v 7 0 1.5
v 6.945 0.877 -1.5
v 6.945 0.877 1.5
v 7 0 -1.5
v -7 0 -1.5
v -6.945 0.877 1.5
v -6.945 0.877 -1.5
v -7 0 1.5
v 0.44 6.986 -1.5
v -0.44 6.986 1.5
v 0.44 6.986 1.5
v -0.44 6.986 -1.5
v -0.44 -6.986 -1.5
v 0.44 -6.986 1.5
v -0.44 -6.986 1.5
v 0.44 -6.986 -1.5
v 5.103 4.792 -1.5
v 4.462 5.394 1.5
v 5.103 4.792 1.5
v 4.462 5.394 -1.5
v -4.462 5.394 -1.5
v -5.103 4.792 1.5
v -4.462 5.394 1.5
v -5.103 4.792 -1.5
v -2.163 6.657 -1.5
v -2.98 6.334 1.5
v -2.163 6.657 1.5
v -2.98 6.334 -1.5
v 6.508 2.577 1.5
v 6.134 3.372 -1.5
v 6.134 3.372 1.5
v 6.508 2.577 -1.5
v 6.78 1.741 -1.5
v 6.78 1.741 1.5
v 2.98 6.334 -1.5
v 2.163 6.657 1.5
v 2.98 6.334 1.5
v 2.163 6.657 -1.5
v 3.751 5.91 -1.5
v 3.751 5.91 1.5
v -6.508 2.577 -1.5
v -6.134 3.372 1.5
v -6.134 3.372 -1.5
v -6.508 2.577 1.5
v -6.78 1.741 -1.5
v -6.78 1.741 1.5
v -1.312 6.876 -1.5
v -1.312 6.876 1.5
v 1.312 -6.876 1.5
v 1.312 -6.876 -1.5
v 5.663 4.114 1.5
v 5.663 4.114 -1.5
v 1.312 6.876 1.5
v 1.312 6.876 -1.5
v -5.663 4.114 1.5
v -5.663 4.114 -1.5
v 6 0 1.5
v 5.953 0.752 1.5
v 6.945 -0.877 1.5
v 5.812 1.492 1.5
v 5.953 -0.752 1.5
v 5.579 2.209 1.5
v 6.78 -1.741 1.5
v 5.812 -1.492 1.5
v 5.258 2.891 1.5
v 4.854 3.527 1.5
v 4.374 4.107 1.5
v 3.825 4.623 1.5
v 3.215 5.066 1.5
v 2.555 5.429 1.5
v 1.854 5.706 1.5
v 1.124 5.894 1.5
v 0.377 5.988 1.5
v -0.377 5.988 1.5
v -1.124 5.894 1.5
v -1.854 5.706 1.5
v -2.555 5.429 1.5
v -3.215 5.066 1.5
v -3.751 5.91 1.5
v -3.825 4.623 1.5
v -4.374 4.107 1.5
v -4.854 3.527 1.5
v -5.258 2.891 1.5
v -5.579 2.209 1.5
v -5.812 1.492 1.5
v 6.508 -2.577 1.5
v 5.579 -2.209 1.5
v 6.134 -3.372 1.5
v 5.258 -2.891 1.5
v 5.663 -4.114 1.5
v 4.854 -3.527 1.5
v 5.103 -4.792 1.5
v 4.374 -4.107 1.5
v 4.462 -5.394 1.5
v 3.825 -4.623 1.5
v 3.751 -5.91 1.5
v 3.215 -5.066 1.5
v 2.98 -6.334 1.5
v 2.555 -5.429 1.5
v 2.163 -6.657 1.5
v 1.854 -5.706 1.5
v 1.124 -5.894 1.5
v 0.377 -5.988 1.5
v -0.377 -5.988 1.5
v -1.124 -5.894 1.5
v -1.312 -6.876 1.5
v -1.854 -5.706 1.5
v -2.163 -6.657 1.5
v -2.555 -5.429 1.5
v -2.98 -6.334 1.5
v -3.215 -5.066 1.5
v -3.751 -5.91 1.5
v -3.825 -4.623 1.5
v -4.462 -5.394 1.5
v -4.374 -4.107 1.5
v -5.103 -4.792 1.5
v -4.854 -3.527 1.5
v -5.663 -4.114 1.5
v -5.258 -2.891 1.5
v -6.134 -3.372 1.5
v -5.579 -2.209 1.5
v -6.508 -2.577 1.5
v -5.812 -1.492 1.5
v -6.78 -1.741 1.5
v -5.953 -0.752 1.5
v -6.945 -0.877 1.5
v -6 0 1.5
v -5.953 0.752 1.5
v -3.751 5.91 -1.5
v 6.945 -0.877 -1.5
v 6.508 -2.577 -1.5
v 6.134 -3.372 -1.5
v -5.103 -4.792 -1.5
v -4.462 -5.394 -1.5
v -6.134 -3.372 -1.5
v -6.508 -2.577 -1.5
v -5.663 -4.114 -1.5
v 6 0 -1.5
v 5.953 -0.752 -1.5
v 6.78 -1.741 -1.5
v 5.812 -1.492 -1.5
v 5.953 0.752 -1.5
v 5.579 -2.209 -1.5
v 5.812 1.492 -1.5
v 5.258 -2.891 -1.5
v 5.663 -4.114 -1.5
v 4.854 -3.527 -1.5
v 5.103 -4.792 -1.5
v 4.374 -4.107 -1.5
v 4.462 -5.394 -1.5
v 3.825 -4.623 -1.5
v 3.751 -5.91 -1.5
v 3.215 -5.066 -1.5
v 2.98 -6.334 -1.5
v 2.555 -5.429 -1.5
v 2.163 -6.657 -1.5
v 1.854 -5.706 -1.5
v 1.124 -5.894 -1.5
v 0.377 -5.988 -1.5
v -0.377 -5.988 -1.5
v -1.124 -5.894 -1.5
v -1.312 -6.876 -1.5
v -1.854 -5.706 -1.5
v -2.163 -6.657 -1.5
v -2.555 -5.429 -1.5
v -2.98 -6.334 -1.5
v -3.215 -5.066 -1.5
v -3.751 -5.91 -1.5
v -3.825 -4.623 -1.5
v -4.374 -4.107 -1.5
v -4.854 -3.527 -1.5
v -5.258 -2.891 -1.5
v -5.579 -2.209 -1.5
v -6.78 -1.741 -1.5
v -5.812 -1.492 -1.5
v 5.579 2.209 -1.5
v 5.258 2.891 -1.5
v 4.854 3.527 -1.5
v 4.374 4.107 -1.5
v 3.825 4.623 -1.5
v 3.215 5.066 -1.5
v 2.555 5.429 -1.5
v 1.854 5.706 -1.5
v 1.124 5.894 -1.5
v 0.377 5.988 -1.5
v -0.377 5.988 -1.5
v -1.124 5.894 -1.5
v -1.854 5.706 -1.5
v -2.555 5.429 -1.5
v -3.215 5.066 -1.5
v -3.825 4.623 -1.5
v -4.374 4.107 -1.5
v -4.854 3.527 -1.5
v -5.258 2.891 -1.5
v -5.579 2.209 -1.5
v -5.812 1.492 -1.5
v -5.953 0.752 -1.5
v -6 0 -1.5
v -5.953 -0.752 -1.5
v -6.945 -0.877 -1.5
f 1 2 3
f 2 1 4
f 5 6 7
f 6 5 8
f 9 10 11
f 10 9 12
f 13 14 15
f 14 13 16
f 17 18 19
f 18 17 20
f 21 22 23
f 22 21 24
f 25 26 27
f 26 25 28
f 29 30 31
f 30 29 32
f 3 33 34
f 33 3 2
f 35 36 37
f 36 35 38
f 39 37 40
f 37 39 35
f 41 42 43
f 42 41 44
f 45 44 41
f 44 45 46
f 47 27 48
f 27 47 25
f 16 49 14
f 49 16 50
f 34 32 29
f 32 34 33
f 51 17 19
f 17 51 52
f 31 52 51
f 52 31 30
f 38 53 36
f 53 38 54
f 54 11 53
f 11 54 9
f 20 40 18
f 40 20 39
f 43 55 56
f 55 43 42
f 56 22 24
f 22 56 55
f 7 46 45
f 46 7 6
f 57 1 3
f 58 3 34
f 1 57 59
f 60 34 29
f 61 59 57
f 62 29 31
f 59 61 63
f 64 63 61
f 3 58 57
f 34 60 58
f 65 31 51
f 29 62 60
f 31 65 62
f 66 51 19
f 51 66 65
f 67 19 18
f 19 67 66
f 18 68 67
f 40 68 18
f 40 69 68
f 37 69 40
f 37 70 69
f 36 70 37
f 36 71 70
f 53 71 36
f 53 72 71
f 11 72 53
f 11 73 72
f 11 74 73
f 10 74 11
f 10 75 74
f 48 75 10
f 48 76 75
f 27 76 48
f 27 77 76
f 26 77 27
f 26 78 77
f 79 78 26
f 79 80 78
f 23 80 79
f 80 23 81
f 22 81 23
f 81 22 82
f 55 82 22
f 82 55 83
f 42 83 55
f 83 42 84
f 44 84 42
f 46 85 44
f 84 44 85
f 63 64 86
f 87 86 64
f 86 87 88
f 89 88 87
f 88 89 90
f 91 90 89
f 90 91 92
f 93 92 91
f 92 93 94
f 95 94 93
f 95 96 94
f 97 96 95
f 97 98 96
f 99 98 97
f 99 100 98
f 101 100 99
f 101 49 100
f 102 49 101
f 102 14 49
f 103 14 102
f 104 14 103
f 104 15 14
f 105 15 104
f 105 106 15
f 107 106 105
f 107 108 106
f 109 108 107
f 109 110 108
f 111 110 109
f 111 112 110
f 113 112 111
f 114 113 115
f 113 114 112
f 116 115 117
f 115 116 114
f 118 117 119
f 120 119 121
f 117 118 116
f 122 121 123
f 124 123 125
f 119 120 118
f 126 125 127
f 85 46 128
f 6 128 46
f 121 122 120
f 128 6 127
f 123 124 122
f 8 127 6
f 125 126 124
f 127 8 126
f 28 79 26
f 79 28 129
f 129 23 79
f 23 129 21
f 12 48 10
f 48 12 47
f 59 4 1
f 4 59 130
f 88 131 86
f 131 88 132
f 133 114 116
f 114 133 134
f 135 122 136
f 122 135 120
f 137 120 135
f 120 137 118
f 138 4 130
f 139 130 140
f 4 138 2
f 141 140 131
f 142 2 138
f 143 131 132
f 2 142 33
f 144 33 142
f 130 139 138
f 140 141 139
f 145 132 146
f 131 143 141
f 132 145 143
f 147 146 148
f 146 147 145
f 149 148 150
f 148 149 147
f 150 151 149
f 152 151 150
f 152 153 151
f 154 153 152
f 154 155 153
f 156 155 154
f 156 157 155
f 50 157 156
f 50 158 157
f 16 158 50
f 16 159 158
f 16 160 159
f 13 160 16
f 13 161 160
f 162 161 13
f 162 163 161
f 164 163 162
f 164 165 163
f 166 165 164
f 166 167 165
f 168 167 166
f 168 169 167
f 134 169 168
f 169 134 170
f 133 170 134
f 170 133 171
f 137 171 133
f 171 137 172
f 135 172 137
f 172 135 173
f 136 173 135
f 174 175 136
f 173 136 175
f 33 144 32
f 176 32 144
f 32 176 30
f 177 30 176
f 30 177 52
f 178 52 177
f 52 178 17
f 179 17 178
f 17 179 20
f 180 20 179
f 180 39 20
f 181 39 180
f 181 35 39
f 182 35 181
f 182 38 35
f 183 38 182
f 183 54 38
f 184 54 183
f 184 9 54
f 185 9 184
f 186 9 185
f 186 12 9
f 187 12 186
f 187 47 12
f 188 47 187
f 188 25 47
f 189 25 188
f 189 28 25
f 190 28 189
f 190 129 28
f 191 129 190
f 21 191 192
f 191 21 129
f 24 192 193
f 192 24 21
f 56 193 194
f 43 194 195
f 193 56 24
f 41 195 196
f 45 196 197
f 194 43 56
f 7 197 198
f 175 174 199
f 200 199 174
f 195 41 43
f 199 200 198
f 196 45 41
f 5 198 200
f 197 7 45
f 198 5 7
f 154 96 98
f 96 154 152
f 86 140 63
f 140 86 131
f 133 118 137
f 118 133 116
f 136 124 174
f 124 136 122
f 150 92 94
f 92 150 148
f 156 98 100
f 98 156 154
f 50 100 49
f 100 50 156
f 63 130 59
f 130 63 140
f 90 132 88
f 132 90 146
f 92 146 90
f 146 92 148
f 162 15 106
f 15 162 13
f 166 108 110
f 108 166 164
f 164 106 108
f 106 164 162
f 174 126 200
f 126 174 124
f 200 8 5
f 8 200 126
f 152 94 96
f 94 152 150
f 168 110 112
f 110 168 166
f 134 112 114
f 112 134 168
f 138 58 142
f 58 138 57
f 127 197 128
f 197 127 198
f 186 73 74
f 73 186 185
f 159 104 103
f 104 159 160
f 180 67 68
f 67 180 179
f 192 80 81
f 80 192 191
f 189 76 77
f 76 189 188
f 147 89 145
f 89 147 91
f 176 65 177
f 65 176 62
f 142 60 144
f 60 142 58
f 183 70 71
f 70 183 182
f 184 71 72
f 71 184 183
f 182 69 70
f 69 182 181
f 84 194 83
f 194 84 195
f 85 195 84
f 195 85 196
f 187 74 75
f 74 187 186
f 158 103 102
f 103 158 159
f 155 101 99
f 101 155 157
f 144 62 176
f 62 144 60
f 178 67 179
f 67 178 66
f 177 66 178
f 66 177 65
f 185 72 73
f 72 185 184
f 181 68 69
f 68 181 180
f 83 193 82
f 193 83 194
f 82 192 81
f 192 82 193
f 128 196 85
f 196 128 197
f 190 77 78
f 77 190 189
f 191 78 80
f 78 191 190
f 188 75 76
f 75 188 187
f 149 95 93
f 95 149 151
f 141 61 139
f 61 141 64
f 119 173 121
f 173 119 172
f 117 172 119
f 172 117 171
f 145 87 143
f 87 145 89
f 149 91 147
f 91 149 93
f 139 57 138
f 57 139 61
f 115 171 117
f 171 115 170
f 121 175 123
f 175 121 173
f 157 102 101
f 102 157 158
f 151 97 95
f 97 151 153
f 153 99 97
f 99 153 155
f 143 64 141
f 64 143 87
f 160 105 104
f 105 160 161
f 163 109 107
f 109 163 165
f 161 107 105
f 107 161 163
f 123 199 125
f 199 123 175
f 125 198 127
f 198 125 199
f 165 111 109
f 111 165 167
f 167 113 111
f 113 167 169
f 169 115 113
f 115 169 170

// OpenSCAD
$fn = 50;


difference() {
	union() {
		translate(v = [0, 0, -1.5000000000]) {
			cylinder(h = 3, r = 7.0000000000);
		}
	}
	union() {
		translate(v = [0, 0, -100.0000000000]) {
			cylinder(h = 200, r = 6);
		}
	}
}
